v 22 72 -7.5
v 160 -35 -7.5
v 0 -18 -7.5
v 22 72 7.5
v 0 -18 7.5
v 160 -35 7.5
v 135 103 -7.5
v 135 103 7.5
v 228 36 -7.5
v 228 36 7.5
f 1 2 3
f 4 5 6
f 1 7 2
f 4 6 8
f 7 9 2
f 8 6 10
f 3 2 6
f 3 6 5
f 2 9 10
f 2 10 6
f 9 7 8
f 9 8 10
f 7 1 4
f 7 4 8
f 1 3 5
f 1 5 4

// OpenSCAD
polyhedron(points=[[22.0, 72.0, -7.5], [0.0, -18.0, -7.5], [160.0, -35.0, -7.5], [22.0, 72.0, 7.5], [0.0, -18.0, 7.5], [160.0, -35.0, 7.5], [135.0, 103.0, -7.5], [135.0, 103.0, 7.5], [228.0, 36.0, -7.5], [228.0, 36.0, 7.5]], faces=[[0, 2, 1], [3, 4, 5], [0, 6, 2], [3, 5, 7], [6, 8, 2], [7, 5, 9], [1, 2, 5], [1, 5, 4], [2, 8, 9], [2, 9, 5], [8, 6, 7], [8, 7, 9], [6, 0, 3], [6, 3, 7], [0, 1, 4], [0, 4, 3]], convexity=20);
